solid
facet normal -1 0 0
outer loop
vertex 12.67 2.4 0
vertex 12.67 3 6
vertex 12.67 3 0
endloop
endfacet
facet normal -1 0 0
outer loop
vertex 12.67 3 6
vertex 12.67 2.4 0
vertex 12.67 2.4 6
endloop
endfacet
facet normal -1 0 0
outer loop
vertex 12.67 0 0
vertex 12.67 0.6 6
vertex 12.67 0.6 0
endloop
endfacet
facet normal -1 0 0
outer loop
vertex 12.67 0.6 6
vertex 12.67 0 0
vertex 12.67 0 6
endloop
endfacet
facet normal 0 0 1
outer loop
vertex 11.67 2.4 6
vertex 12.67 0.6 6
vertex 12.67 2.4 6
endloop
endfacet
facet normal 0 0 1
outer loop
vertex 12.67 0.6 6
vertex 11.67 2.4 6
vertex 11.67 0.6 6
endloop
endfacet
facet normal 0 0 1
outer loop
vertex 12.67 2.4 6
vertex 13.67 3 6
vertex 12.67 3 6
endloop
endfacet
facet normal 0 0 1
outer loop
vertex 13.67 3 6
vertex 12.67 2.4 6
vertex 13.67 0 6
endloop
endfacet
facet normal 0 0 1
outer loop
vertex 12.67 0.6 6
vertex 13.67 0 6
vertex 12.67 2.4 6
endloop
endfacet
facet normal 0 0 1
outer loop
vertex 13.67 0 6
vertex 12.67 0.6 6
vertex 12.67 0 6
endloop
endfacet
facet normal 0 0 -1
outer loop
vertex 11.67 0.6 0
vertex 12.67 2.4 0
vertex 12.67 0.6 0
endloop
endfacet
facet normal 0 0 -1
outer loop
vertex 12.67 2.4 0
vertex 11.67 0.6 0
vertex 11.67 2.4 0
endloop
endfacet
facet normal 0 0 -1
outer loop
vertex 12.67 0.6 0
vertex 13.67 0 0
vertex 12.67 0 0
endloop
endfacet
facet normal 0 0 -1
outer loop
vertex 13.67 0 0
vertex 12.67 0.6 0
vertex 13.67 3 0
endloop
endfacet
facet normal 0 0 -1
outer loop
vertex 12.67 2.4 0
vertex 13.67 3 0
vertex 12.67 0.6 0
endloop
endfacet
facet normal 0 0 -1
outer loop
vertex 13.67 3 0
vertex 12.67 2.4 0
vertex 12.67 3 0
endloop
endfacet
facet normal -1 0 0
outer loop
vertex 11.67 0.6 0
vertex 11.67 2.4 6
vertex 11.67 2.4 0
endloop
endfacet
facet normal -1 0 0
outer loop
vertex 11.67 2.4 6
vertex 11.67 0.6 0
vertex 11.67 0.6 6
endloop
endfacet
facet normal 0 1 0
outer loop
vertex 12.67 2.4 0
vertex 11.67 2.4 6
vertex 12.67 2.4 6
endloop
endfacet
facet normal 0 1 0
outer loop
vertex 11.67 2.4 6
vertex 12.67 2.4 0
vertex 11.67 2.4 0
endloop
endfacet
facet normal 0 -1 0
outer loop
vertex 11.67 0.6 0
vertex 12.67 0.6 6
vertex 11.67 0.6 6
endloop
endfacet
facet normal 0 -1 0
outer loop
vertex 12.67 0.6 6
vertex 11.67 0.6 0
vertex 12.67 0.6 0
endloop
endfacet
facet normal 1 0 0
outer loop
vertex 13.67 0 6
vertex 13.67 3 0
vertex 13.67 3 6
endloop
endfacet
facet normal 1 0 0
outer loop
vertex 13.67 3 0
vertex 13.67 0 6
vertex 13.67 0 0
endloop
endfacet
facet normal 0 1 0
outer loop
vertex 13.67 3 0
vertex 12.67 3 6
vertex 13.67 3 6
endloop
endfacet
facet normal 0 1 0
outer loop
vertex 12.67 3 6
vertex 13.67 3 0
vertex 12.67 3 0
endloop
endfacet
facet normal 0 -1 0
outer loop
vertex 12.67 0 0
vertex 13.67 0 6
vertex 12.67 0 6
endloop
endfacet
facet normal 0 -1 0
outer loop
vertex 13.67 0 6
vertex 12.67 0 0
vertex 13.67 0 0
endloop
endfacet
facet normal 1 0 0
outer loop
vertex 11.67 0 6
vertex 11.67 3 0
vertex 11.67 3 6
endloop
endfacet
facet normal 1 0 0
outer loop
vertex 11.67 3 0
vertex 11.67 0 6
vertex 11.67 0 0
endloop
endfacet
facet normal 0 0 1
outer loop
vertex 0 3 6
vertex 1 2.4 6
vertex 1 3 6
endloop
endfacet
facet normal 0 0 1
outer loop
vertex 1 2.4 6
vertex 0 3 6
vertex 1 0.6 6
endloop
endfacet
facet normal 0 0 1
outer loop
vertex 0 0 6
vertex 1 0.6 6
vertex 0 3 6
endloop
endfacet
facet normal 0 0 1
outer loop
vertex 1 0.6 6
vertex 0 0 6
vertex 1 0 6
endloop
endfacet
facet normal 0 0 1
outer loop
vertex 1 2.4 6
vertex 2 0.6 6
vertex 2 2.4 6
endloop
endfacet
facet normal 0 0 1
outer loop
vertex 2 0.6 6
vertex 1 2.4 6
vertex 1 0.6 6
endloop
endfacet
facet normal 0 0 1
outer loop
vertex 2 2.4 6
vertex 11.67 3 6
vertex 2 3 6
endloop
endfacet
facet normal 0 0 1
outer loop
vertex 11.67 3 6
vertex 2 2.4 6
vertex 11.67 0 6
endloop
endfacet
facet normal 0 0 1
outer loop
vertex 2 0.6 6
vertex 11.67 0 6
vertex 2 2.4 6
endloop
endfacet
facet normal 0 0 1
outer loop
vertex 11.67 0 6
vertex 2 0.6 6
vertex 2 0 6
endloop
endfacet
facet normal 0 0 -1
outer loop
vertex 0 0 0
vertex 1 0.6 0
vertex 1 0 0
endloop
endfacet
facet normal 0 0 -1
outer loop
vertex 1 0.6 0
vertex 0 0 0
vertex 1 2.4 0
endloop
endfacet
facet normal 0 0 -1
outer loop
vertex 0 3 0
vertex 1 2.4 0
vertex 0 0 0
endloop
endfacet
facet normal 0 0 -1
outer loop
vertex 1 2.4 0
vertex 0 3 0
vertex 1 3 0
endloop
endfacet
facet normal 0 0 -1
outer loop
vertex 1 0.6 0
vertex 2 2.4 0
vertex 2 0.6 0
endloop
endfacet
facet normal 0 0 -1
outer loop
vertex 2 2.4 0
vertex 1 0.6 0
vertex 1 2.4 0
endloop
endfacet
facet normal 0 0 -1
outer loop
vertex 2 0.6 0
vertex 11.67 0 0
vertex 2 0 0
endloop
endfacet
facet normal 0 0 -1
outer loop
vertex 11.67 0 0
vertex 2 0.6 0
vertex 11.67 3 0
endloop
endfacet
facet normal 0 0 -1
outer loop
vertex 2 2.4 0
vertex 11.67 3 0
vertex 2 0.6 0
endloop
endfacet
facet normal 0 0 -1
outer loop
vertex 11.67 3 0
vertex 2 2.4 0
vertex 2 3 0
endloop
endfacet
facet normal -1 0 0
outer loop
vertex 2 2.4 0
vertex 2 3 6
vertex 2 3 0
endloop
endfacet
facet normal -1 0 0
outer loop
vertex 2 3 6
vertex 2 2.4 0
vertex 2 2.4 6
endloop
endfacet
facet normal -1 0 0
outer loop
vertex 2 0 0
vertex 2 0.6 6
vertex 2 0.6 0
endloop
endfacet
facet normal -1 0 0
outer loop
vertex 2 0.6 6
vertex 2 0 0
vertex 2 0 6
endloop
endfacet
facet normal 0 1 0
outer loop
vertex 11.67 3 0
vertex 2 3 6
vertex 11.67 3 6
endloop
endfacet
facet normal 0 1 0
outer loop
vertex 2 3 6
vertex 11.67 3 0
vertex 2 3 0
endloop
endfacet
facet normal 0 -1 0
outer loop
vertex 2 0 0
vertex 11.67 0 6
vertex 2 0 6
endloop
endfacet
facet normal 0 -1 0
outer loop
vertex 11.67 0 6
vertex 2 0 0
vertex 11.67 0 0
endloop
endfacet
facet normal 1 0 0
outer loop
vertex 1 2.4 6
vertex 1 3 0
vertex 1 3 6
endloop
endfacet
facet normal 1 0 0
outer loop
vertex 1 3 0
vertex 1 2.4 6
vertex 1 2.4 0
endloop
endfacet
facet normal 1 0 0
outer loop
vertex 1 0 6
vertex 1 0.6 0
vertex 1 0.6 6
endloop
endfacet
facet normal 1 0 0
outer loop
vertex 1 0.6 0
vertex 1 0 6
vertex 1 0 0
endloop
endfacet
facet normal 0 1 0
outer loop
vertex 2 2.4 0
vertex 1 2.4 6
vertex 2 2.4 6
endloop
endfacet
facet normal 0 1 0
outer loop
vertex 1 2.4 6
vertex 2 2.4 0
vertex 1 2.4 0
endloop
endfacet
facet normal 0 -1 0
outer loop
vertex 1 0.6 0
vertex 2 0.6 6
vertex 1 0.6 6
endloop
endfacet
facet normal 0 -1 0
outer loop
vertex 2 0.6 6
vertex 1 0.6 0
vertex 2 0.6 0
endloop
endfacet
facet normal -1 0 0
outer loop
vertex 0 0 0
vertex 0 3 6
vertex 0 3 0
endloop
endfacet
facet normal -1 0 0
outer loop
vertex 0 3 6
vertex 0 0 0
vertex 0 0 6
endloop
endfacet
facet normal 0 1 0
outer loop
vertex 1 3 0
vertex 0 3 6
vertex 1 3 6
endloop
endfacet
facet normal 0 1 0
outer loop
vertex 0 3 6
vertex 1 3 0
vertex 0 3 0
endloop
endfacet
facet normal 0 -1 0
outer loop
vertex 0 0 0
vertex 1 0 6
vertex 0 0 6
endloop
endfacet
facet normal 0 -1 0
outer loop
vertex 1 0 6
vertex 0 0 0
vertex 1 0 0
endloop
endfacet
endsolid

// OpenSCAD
cube([1, 3, 6]);
translate([1, 0, 0]) {
    translate([0, (3 - 1.8) / 2, 0])
        cube([1, 1.8, 6]);
    translate([1, 0, 0]) {
        cube([10.67 - 1, 3, 6]);
        translate([10.67 - 1, 0, 0]) {
            translate([0, (3 - 1.8) / 2, 0])
                cube([1, 1.8, 6]);
            translate([1, 0, 0])
                cube([1, 3, 6]);
        }
    }
}
